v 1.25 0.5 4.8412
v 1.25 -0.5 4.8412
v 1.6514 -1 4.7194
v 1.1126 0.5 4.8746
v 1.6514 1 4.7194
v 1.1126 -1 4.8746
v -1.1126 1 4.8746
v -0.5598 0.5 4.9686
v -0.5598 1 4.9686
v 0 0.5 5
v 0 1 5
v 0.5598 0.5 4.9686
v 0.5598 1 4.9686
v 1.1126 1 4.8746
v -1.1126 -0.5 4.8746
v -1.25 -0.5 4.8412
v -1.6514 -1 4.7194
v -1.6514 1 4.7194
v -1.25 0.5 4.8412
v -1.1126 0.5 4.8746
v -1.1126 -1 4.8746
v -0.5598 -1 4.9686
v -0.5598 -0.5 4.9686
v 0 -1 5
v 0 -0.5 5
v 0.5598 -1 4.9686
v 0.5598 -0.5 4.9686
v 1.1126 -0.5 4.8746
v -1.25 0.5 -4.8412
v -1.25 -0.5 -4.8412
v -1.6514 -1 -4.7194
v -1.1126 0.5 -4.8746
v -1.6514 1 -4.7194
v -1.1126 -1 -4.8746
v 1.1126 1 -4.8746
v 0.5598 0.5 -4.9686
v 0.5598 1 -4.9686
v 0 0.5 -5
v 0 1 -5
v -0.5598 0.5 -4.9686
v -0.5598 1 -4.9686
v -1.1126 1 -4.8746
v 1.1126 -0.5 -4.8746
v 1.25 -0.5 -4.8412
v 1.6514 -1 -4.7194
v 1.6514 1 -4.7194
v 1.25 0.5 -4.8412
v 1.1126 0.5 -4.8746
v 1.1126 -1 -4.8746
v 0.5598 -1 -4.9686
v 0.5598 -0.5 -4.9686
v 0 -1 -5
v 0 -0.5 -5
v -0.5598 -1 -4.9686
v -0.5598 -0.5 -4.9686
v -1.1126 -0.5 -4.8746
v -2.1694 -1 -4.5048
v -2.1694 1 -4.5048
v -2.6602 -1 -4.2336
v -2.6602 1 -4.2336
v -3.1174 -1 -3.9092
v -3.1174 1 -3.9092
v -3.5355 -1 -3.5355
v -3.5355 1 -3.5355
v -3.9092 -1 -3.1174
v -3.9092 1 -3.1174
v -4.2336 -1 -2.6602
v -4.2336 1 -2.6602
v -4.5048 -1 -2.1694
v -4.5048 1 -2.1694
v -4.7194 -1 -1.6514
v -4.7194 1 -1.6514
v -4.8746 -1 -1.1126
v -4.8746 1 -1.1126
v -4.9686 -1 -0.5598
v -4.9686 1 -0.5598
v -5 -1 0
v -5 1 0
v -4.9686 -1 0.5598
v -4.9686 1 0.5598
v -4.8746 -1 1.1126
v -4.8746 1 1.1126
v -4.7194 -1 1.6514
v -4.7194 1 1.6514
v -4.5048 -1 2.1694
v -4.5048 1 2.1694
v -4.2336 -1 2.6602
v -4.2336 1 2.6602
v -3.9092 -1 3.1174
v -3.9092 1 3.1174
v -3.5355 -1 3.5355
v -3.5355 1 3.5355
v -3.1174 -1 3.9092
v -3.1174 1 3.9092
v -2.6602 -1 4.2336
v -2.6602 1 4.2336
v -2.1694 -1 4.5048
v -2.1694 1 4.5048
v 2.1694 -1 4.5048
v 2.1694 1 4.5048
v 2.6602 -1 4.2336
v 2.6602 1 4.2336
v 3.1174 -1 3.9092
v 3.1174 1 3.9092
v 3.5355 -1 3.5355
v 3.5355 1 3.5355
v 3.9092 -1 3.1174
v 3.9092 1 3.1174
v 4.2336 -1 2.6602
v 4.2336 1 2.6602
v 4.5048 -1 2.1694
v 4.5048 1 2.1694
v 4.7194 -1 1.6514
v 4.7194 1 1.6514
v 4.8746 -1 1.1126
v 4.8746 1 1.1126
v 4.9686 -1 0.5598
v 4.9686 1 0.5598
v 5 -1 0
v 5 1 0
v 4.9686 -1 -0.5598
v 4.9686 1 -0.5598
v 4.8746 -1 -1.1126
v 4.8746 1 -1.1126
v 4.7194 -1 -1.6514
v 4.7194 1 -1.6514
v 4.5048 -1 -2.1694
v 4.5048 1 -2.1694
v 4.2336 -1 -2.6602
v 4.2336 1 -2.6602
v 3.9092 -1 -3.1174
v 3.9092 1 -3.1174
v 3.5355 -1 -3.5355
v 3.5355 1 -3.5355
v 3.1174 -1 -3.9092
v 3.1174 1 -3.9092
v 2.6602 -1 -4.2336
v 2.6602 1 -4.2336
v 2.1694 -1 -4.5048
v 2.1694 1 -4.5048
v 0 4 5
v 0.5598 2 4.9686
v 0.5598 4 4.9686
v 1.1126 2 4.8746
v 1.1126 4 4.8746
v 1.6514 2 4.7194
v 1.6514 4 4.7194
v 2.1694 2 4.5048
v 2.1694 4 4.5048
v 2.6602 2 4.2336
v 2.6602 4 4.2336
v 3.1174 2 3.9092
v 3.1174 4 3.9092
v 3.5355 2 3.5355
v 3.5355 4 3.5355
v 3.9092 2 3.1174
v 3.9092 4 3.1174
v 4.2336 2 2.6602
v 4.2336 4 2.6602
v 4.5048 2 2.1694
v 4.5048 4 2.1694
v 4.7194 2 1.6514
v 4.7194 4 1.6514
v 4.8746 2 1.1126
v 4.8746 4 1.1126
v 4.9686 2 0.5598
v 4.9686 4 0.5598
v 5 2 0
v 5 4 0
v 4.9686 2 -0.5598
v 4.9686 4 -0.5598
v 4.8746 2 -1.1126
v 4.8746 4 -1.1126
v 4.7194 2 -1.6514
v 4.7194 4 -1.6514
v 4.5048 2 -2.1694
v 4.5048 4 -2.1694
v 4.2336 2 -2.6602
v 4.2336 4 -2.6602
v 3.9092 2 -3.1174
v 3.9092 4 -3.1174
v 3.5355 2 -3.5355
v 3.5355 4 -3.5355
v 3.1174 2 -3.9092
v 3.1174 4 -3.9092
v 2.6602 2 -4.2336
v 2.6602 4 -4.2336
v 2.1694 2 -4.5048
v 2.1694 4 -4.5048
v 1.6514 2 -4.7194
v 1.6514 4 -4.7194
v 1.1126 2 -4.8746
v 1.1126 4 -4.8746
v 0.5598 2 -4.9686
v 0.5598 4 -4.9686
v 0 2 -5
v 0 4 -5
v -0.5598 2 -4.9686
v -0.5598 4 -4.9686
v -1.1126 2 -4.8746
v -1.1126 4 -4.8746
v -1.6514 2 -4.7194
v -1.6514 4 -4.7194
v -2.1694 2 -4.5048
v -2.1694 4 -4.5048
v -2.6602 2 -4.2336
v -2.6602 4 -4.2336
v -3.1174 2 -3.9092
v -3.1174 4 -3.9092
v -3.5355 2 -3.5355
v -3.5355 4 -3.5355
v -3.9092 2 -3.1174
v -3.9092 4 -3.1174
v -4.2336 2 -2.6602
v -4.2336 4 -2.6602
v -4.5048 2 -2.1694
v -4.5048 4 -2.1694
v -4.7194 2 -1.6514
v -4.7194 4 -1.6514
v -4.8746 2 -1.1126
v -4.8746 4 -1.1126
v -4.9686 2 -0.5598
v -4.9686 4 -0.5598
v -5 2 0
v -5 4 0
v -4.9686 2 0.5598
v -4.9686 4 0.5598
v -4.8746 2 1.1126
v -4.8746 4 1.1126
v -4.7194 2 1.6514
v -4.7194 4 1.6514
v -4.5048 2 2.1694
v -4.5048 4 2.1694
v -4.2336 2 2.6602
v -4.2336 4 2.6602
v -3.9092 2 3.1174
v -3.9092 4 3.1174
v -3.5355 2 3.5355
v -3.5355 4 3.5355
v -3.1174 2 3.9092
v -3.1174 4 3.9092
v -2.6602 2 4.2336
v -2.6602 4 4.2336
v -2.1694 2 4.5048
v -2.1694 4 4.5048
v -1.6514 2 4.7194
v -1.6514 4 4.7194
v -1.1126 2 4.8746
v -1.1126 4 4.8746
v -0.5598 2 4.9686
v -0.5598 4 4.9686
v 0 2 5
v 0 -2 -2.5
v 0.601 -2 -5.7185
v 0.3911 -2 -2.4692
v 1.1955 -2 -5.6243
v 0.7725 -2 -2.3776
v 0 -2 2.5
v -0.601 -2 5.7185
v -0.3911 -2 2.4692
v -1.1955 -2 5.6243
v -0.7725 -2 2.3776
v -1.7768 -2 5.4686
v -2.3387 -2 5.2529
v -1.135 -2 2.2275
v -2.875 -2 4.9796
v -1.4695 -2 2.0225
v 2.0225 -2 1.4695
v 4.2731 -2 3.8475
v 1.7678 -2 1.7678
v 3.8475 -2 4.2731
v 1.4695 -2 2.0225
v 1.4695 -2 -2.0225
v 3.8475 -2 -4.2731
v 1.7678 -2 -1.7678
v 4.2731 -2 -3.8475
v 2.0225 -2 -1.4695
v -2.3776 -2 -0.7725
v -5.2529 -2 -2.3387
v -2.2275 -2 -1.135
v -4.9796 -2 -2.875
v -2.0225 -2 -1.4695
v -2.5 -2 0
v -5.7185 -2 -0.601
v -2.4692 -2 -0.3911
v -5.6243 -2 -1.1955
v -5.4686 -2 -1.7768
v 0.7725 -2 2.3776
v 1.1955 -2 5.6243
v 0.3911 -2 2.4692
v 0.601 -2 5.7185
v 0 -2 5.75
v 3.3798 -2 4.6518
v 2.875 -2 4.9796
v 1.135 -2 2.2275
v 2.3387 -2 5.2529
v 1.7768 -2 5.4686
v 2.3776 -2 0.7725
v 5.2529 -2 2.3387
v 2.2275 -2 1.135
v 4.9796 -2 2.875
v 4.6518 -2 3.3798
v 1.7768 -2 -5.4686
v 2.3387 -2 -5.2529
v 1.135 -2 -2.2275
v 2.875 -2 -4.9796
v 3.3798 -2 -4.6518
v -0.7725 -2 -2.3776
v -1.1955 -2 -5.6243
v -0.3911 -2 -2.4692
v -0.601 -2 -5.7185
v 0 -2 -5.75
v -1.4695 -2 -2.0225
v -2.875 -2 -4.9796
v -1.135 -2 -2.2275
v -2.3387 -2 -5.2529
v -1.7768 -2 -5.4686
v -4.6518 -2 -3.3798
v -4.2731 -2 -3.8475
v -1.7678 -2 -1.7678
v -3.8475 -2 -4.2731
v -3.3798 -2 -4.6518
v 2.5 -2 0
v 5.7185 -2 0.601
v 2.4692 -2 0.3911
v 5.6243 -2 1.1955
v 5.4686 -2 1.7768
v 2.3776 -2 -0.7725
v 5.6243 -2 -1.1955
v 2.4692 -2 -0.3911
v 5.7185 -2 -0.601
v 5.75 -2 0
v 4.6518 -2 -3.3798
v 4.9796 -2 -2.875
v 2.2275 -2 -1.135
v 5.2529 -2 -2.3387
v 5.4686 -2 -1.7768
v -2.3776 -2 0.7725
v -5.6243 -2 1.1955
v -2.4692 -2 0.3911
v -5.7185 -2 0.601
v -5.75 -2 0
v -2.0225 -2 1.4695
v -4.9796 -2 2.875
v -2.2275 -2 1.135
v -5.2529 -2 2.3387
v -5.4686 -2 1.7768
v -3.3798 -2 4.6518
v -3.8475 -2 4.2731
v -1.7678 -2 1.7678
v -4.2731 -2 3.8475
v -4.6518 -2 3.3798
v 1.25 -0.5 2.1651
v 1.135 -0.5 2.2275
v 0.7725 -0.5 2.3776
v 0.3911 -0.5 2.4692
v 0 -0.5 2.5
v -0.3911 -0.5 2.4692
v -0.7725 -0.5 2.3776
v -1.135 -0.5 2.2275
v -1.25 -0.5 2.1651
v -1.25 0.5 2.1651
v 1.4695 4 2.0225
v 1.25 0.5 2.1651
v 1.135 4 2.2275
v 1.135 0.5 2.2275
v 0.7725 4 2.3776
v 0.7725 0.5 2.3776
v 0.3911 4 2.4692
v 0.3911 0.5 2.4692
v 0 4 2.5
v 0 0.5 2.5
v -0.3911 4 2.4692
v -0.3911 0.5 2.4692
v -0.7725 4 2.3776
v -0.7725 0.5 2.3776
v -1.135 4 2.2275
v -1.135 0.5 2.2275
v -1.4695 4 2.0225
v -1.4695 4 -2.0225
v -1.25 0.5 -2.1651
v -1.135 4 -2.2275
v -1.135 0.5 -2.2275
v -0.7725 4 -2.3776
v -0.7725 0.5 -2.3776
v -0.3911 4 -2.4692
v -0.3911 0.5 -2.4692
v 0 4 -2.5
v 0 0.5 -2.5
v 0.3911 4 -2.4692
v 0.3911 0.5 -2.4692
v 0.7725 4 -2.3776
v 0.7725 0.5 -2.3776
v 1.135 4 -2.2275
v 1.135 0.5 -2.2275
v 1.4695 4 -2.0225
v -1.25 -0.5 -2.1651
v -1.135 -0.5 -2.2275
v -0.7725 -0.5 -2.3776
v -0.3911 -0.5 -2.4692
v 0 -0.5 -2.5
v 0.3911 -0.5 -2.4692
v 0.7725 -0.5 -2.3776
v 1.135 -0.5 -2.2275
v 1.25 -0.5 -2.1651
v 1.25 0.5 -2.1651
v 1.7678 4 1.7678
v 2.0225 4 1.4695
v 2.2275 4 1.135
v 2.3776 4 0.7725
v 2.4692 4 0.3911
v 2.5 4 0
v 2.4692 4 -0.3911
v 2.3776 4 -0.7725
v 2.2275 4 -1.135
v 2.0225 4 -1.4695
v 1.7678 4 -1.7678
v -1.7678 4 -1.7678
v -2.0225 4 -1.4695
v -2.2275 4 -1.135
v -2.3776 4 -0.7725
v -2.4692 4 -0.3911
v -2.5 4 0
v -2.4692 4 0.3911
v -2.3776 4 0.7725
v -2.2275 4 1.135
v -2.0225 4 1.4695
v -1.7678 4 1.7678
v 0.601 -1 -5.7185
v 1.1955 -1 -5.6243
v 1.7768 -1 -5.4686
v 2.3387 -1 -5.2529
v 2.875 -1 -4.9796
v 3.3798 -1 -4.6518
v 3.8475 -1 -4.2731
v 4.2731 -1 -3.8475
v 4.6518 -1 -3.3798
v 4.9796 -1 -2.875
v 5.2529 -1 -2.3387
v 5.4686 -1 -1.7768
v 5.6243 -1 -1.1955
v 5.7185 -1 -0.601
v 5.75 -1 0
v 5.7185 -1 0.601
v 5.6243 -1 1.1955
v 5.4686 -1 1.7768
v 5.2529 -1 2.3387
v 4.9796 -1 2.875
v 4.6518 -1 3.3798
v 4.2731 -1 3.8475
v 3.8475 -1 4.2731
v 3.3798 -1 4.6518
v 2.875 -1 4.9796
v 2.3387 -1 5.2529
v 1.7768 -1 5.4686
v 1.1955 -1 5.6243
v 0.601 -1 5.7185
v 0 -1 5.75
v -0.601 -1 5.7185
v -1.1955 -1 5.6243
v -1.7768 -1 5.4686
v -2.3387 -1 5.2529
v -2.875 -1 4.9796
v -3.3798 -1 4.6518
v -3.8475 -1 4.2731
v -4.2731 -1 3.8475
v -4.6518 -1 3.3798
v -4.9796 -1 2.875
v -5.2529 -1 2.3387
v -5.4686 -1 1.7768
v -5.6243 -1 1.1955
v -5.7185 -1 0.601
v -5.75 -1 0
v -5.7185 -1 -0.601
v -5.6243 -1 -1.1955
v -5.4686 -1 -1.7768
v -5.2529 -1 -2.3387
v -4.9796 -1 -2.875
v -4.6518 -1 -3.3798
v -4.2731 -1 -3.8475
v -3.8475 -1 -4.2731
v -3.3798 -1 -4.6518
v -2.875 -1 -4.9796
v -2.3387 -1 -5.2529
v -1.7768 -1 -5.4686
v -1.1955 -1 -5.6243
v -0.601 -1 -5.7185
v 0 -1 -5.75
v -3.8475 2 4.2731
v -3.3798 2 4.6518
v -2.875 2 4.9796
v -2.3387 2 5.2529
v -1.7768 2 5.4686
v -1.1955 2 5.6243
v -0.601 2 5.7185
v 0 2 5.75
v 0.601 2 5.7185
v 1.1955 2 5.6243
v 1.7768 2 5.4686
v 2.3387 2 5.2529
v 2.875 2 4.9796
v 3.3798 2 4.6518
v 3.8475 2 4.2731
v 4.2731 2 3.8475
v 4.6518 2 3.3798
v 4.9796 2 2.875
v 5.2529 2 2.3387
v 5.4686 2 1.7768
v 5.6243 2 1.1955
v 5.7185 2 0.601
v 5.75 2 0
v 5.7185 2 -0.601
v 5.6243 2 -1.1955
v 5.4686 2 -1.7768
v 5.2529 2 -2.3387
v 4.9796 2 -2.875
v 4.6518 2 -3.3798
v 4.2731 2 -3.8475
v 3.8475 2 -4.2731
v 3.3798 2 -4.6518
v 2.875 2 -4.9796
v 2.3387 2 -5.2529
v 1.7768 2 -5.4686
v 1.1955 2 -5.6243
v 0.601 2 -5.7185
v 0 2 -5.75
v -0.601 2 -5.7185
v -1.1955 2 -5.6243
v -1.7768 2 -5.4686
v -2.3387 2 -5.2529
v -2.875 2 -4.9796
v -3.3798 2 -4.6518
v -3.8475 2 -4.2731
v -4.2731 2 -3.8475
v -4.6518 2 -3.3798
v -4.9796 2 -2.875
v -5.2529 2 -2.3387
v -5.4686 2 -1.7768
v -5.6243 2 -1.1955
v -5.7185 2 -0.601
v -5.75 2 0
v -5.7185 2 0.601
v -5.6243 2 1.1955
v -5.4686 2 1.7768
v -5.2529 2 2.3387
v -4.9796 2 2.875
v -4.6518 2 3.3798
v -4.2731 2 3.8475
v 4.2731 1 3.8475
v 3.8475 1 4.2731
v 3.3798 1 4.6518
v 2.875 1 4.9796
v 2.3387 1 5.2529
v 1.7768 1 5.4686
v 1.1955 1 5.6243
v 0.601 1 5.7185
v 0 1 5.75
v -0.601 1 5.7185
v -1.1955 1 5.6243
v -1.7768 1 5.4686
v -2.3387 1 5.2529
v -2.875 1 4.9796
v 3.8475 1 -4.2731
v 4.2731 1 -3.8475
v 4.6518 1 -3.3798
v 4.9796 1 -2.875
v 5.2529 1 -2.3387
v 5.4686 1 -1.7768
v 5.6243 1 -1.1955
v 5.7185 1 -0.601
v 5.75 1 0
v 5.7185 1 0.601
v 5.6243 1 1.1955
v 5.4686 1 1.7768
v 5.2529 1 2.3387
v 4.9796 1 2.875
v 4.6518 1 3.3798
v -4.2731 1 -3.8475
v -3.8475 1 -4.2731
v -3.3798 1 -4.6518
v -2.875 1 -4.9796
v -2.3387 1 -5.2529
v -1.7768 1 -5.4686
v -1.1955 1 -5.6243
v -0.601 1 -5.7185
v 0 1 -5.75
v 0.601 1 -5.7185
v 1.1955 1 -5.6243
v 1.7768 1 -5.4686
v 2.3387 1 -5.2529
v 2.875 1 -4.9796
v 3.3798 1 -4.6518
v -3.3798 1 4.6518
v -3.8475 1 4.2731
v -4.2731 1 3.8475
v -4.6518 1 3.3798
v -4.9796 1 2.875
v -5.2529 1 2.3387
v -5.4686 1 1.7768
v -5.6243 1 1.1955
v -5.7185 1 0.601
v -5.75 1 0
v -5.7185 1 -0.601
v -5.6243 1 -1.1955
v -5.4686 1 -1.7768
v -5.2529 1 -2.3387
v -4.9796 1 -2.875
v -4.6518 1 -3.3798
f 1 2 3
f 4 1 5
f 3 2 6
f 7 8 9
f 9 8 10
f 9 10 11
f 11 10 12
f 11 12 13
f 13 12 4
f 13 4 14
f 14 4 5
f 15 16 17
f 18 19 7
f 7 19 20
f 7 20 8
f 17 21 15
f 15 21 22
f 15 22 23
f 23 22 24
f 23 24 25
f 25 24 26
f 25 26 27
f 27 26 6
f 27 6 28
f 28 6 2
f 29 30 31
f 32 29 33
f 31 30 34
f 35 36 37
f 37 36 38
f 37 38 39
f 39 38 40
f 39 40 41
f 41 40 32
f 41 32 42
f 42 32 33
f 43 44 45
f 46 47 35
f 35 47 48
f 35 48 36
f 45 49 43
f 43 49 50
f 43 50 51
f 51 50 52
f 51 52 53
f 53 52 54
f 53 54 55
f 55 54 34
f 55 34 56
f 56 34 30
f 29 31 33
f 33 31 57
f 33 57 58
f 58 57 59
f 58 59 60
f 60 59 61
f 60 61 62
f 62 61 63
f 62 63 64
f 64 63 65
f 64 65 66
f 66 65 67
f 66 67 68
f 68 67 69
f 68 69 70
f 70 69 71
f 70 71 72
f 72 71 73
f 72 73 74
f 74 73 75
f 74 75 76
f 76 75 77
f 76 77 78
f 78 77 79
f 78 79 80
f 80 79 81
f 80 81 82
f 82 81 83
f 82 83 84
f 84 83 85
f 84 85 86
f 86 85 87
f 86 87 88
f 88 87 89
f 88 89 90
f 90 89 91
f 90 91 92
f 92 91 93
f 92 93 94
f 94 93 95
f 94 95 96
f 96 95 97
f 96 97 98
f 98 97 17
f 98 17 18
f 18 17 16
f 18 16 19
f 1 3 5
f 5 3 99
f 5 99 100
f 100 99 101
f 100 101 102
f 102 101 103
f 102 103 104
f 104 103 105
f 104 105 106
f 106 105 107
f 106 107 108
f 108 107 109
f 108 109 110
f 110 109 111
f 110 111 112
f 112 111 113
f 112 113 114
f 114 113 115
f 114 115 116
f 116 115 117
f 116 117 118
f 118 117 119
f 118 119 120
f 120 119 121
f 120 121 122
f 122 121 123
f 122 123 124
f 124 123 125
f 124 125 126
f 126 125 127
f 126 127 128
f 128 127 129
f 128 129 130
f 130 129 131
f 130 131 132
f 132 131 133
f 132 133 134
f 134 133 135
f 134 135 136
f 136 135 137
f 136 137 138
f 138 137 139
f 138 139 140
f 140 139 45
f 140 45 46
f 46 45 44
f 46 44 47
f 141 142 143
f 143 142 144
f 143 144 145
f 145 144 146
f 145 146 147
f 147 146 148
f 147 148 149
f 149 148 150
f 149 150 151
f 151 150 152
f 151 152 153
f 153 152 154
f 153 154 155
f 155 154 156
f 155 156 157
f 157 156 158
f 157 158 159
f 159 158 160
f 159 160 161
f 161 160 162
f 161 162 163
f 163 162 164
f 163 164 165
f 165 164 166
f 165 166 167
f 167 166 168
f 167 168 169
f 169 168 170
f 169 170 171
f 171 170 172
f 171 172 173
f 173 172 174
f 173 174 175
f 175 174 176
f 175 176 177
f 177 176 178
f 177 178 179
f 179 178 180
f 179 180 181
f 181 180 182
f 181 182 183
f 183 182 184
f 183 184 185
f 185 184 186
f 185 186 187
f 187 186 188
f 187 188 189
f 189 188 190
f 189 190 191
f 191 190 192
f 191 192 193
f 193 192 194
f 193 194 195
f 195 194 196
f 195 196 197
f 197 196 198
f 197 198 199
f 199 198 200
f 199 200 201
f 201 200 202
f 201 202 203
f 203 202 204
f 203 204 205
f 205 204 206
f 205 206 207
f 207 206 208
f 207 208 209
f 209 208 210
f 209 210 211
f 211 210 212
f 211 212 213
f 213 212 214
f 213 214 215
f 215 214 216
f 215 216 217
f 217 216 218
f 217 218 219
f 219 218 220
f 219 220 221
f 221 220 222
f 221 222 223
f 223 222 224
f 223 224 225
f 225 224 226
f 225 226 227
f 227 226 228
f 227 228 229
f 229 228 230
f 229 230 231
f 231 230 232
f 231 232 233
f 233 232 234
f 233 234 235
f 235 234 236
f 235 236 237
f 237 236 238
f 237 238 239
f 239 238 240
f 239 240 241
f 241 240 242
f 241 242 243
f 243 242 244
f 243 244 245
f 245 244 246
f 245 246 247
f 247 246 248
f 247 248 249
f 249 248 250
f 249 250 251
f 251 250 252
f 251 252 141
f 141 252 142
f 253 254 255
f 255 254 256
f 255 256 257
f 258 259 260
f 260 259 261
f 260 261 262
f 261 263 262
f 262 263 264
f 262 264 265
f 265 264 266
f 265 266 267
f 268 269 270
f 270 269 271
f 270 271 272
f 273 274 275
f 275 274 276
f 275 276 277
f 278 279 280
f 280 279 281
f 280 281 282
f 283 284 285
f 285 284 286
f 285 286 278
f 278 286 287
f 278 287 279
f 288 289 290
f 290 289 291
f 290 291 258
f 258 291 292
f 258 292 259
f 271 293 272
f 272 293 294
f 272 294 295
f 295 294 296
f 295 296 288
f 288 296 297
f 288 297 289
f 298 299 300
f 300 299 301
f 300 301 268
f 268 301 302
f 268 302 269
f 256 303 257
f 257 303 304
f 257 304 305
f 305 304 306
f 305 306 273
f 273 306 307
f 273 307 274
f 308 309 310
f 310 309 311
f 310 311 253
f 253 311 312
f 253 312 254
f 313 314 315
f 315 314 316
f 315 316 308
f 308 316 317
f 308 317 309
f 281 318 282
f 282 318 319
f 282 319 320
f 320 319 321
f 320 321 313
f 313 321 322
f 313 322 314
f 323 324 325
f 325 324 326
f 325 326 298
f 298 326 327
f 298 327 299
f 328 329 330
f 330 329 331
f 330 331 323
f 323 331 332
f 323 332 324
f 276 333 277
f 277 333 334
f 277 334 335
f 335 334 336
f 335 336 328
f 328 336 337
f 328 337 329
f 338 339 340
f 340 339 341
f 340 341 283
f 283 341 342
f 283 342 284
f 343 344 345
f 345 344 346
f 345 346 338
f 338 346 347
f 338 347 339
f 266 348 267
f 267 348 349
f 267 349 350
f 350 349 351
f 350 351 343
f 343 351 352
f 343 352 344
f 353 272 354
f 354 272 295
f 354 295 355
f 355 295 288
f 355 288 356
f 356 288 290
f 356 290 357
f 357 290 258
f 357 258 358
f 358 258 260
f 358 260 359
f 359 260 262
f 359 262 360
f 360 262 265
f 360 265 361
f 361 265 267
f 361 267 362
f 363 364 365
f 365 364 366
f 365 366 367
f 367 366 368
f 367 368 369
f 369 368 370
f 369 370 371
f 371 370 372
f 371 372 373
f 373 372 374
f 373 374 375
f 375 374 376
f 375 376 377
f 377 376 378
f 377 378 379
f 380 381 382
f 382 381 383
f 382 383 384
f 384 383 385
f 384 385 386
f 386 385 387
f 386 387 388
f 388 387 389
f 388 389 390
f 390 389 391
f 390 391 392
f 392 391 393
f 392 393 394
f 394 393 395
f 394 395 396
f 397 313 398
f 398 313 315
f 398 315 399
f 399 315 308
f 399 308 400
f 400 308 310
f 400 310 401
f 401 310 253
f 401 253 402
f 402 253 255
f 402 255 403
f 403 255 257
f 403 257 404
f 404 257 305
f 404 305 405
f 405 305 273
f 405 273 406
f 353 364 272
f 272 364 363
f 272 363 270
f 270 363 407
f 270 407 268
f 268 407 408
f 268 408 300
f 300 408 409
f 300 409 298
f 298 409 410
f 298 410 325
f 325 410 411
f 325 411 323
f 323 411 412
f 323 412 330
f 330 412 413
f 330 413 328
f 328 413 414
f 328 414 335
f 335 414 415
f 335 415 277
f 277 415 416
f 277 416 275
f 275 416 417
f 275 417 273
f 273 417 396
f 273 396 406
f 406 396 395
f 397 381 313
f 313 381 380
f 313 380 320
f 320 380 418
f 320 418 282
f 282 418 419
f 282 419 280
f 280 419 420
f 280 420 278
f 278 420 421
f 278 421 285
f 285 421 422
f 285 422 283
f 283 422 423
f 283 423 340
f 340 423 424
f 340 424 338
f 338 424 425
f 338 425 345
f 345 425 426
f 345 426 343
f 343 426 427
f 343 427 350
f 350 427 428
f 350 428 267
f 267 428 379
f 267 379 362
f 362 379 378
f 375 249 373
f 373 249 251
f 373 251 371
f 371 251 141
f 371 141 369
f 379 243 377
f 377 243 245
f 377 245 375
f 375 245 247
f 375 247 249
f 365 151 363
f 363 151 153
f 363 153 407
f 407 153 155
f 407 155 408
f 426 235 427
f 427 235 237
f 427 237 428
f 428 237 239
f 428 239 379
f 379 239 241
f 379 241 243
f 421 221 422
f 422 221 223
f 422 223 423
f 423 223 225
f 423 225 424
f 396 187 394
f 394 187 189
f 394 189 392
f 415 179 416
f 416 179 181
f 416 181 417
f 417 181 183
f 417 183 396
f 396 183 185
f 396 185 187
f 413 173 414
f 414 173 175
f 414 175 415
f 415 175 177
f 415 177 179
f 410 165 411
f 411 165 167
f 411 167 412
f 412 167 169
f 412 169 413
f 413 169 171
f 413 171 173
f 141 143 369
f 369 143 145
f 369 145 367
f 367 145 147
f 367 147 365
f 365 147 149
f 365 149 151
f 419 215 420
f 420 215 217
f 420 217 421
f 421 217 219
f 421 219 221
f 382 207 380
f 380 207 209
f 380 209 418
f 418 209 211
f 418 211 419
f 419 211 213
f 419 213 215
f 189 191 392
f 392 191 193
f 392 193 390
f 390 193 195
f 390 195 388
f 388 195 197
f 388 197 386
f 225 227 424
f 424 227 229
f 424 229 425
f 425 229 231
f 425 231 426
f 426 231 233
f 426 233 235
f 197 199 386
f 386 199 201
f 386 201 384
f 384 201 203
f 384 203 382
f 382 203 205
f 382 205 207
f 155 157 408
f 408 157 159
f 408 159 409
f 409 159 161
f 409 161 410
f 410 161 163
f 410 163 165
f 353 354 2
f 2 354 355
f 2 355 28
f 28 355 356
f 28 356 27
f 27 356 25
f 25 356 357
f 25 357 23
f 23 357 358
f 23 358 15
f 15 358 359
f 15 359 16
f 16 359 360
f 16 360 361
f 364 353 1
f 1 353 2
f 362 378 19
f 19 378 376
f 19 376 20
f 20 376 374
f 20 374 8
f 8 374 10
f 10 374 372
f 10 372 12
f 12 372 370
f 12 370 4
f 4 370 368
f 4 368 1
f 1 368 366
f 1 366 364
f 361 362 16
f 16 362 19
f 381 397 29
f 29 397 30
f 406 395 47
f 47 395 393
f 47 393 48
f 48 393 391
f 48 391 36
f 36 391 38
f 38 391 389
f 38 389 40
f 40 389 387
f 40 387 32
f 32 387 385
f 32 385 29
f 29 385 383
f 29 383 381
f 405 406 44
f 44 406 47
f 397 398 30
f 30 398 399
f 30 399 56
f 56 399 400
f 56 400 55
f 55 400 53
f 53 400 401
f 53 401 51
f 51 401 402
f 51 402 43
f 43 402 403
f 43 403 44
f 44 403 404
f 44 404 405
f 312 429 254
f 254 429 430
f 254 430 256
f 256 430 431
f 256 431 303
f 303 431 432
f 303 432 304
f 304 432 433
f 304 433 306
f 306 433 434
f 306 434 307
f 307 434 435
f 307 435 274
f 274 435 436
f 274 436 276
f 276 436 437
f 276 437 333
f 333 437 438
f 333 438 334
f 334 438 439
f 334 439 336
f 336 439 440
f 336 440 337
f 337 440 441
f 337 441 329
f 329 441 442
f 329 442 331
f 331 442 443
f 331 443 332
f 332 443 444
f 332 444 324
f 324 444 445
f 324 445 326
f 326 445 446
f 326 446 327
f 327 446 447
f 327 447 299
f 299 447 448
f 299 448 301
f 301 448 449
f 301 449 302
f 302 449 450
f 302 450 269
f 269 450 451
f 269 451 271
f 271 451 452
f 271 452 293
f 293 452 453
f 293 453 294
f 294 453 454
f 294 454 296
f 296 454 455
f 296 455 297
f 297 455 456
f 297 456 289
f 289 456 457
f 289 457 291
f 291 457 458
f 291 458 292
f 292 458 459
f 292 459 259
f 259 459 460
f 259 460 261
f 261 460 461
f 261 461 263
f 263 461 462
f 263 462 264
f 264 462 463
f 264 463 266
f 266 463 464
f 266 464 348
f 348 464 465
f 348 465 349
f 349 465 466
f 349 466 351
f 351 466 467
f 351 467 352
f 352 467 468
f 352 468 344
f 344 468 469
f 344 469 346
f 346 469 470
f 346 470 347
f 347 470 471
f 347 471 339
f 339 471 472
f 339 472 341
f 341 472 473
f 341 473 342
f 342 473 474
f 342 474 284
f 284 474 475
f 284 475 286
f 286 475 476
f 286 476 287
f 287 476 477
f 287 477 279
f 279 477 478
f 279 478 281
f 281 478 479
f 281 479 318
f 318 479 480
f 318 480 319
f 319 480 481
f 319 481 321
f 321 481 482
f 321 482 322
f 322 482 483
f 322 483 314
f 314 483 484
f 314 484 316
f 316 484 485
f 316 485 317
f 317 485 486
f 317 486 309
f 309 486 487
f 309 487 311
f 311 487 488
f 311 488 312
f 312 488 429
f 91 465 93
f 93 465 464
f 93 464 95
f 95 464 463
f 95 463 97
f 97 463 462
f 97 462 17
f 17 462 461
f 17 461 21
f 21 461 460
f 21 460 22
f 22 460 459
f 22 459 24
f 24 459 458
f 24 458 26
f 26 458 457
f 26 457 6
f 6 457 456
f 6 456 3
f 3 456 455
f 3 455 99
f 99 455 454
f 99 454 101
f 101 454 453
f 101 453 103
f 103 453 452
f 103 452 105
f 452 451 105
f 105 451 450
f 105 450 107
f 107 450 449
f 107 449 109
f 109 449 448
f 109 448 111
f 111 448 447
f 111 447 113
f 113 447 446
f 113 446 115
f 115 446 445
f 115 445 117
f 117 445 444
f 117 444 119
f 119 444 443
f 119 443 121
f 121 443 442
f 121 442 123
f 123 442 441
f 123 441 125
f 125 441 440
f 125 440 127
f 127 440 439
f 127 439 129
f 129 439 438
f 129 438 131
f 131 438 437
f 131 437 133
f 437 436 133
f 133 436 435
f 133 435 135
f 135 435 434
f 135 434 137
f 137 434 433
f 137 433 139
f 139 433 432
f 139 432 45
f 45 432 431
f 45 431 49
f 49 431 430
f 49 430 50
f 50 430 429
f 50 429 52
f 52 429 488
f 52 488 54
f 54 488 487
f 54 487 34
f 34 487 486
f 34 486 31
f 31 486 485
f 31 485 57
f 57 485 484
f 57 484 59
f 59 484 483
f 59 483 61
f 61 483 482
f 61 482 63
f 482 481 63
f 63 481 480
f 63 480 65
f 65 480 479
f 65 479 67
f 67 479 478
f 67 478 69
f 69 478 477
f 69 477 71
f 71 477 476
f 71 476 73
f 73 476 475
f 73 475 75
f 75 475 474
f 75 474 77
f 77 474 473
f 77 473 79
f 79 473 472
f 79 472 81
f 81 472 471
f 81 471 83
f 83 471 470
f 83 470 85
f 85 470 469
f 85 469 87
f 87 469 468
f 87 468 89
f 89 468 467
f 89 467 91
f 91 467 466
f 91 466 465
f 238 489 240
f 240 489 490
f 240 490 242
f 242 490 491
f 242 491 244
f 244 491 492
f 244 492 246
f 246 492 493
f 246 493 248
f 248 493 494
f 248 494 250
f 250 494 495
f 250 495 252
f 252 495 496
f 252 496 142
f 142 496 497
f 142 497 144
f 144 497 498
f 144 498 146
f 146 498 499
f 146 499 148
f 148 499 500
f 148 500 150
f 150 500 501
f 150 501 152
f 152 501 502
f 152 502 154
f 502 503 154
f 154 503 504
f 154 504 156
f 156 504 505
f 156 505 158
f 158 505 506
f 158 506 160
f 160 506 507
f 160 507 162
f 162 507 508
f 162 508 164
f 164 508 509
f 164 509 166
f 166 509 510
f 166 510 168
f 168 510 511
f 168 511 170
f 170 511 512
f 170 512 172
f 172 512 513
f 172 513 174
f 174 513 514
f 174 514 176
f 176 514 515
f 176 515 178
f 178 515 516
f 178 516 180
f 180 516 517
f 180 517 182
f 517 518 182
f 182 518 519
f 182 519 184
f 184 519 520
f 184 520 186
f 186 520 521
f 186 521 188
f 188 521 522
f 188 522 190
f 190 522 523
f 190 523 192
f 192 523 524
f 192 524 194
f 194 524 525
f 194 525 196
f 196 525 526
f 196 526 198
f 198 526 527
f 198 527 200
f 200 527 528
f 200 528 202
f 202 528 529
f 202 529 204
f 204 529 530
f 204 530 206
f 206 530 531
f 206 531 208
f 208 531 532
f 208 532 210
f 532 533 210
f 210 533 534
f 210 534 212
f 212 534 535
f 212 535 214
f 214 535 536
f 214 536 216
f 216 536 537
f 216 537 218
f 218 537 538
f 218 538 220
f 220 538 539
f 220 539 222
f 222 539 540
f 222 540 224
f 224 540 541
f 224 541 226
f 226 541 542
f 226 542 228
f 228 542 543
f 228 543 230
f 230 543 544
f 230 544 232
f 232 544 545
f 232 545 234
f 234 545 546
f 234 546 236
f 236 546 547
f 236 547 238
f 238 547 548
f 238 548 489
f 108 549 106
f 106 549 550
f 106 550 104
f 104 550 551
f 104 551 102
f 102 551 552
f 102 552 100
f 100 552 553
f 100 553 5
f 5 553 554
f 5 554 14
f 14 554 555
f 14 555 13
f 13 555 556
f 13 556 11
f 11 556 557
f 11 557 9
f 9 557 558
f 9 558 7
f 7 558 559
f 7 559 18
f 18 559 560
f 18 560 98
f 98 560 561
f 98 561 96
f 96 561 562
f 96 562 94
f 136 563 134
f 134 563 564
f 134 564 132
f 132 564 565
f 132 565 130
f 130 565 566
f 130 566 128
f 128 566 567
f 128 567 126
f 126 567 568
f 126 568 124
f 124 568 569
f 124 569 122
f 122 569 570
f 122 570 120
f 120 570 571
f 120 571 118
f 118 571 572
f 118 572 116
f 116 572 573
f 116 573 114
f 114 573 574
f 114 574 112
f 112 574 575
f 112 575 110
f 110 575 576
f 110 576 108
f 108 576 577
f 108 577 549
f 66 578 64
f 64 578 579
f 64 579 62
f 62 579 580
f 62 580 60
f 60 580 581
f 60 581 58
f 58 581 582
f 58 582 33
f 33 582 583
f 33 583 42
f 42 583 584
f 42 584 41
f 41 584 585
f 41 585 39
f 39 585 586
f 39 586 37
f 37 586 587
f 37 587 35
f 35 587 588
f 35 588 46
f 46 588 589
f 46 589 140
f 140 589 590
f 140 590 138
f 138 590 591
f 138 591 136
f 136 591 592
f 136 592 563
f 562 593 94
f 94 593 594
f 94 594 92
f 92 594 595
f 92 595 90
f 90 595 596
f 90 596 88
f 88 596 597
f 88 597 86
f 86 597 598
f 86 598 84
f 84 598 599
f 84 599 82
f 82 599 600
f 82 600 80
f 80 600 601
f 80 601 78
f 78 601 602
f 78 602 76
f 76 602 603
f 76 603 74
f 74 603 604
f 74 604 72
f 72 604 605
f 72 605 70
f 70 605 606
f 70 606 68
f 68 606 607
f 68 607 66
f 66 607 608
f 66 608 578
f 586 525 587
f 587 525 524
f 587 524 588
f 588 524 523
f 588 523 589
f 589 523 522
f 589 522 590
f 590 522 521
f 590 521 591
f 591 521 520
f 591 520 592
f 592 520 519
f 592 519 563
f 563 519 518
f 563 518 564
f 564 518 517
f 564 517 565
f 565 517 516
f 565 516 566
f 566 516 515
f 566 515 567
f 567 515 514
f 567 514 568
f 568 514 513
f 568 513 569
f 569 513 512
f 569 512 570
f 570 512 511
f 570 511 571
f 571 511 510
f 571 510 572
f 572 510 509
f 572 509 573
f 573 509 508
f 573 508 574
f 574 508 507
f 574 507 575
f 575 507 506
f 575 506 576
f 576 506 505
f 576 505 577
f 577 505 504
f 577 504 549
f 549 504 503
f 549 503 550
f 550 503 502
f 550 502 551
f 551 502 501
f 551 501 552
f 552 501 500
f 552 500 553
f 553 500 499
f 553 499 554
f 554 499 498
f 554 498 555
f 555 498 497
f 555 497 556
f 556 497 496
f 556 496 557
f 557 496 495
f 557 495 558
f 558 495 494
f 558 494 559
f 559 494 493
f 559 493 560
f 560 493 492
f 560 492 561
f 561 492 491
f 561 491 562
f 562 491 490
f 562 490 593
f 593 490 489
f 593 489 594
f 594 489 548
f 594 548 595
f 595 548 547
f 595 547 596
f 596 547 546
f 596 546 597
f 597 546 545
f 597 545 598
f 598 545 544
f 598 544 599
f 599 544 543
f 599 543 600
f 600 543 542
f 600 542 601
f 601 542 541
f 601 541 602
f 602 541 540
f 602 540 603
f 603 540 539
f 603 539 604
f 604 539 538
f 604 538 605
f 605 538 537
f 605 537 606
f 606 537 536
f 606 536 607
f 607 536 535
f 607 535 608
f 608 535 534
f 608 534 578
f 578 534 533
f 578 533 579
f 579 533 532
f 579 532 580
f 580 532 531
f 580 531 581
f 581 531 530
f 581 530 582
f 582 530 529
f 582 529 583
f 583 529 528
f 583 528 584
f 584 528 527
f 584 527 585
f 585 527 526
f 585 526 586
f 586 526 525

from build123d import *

# Parameters (mm, degrees)
SKETCH1_R                = 5
SKETCH1_R_2              = 2.5
BOSS_EXTRUDE1_DEPTH      = 4
BOSS_EXTRUDE1_DEPTH_BACK = 2
SKETCH2_W                = 2.5
SKETCH2_H                = 1
CUT_EXTRUDE1_DEPTH       = 6
CUT_EXTRUDE1_DEPTH_BACK  = 6
SKETCH3_R                = 5.75
SKETCH3_R_2              = 5
BOSS_EXTRUDE2_DEPTH      = 1
SKETCH5_R                = 5.75
SKETCH5_R_2              = 5
BOSS_EXTRUDE3_DEPTH      = 1


with BuildPart() as part:
    # Sketch1 → Boss-Extrude1 (new body, two sides)
    with BuildSketch(Plane(origin=(0, 0, 0), x_dir=(1, 0, 0), z_dir=(0, 1, 0))) as boss_extrude1_sk:
        Circle(SKETCH1_R)
        Circle(SKETCH1_R_2, mode=Mode.SUBTRACT)
    extrude(amount=BOSS_EXTRUDE1_DEPTH)
    extrude(boss_extrude1_sk.sketch, amount=-BOSS_EXTRUDE1_DEPTH_BACK)

    # Sketch2 → Cut-Extrude1 (cut, two sides)
    with BuildSketch(Plane.XY) as cut_extrude1_sk:
        Rectangle(SKETCH2_W, SKETCH2_H)
    extrude(amount=CUT_EXTRUDE1_DEPTH, mode=Mode.SUBTRACT)
    extrude(cut_extrude1_sk.sketch, amount=-CUT_EXTRUDE1_DEPTH_BACK, mode=Mode.SUBTRACT)

    # Sketch3 → Boss-Extrude2 (add)
    with BuildSketch(Plane.XZ.offset(2)):
        Circle(SKETCH3_R)
        Circle(SKETCH3_R_2, mode=Mode.SUBTRACT)
    extrude(amount=-BOSS_EXTRUDE2_DEPTH)

    # Sketch5 → Boss-Extrude3 (add)
    with BuildSketch(Plane(origin=(0, 1, 0), x_dir=(1, 0, 0), z_dir=(0, 1, 0))):
        Circle(SKETCH5_R)
        Circle(SKETCH5_R_2, mode=Mode.SUBTRACT)
    extrude(amount=BOSS_EXTRUDE3_DEPTH)


solid = part.part
